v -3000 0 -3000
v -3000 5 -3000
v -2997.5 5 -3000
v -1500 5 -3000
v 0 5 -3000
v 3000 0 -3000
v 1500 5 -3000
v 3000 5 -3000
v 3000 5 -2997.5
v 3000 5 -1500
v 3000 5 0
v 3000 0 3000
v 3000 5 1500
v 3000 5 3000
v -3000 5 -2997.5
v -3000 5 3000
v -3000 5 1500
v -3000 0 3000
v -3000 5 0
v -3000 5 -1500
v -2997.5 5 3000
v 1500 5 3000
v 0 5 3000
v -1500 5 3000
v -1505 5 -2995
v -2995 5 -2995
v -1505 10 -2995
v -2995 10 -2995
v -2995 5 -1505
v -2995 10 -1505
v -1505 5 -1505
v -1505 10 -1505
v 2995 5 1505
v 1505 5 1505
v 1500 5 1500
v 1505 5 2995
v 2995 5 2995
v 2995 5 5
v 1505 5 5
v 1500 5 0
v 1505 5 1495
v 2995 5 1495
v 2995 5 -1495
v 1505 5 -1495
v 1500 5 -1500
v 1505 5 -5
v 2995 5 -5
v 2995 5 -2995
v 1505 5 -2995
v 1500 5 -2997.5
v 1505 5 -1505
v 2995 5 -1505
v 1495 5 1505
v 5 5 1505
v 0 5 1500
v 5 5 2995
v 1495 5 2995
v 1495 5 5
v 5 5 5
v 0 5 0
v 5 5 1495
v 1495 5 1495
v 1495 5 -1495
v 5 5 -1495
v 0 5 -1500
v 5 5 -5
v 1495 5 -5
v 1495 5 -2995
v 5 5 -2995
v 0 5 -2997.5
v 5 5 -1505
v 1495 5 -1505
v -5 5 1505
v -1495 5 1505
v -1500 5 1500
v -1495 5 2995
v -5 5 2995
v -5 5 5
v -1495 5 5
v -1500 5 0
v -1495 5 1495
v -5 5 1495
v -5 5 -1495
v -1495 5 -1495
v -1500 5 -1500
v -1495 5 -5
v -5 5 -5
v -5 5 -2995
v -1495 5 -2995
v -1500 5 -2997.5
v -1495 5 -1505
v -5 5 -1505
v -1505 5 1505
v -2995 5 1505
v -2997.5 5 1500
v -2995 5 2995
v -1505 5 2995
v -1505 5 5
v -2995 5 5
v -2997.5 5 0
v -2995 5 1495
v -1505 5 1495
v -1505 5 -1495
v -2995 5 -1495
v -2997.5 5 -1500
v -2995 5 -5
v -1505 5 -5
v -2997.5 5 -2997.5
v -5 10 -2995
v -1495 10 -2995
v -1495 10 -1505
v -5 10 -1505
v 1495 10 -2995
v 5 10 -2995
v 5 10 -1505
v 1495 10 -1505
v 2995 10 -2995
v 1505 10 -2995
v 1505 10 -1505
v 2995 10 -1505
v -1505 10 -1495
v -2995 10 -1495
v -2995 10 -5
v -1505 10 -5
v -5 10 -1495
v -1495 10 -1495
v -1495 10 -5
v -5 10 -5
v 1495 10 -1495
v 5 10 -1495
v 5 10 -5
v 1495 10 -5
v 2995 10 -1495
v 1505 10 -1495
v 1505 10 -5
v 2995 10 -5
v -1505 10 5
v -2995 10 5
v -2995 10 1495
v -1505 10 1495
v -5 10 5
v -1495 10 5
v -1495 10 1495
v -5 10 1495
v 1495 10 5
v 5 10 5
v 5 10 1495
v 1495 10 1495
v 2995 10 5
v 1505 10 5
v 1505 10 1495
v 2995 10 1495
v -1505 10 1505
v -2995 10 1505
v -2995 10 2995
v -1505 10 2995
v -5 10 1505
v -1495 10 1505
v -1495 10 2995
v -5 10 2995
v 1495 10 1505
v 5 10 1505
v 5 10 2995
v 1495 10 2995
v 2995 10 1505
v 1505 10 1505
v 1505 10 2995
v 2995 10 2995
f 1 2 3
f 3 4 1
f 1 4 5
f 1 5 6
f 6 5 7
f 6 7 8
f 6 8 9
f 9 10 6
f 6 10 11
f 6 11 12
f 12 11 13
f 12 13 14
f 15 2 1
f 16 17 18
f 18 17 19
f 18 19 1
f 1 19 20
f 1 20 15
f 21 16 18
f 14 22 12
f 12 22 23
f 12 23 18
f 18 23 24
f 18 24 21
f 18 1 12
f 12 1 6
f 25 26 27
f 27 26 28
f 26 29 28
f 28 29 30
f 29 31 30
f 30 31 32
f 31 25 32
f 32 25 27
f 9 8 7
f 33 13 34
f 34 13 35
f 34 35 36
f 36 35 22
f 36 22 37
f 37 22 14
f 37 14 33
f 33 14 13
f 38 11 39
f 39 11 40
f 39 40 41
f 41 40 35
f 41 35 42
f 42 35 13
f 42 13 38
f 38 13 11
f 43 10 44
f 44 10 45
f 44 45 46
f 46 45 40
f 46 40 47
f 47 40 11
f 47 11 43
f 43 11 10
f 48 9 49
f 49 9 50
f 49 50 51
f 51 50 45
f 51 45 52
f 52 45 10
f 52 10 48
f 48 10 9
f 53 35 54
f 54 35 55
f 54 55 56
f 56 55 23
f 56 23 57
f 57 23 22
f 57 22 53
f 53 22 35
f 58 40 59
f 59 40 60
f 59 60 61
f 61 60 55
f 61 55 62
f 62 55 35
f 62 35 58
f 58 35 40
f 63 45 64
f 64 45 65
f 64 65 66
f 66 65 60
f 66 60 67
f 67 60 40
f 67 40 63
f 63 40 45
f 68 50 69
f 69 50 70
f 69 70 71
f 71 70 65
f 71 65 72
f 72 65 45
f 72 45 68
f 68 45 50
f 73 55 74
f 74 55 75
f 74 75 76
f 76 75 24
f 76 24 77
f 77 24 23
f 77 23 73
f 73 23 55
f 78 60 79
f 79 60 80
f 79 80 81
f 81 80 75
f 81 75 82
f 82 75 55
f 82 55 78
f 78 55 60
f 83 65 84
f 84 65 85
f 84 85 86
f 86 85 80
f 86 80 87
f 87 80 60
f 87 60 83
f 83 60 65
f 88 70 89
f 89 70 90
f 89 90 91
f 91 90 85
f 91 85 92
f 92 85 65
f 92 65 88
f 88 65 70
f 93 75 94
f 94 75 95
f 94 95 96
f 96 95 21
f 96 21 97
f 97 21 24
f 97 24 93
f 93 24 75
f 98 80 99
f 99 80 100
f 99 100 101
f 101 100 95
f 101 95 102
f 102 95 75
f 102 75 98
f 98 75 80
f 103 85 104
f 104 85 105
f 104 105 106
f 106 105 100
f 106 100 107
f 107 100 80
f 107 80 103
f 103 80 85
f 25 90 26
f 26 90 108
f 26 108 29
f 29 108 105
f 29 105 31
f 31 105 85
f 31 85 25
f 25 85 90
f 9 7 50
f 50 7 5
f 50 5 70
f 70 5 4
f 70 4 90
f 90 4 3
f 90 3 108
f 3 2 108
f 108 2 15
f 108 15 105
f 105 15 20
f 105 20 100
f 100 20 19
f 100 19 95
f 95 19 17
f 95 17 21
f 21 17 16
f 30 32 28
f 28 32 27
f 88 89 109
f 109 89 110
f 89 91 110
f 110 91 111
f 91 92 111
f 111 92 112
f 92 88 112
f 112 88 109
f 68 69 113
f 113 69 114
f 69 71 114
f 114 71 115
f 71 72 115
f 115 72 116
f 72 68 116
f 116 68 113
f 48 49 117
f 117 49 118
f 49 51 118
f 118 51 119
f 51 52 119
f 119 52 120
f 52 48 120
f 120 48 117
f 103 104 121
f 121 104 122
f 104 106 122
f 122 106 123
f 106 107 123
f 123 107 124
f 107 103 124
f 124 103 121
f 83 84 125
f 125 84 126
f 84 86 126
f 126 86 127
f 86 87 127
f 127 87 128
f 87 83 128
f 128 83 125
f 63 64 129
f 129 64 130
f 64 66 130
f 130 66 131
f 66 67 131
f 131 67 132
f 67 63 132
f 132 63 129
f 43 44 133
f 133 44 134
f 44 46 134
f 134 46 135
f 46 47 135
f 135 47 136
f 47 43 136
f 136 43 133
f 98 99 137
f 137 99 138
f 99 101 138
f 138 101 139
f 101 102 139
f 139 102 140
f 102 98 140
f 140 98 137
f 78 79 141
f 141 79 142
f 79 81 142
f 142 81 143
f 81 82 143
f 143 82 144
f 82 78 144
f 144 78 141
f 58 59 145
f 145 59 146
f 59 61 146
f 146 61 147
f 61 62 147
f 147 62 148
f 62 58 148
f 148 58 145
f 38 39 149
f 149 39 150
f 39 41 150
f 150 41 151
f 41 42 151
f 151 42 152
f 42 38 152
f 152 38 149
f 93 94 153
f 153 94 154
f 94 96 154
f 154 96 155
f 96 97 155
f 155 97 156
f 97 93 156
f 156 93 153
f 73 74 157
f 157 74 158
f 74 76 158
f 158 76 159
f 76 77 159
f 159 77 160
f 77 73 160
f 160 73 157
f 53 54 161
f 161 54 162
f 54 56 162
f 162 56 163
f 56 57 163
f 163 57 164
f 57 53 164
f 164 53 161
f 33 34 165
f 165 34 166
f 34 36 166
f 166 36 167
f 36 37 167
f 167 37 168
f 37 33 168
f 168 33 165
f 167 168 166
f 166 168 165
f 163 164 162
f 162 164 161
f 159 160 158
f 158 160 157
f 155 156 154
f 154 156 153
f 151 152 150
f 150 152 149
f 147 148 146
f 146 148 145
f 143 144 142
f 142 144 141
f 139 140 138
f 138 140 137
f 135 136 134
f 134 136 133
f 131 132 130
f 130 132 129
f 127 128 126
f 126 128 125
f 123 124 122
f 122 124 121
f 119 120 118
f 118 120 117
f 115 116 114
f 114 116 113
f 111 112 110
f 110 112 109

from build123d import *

# Parameters (mm, degrees)
SKETCH1_W            = 6000
SKETCH1_H            = 6000
BOSS_EXTRUDE1_DEPTH  = 10
SKETCH2_W            = 1500
SKETCH2_H            = 1500
SKETCH2_W_2          = 1490
SKETCH2_H_2          = 1490
CUT_EXTRUDE1_DEPTH   = 5
LPATTERN1_COUNT      = 4
LPATTERN1_PITCH      = 1500
LPATTERN1_COUNT_DIR2 = 4
LPATTERN1_PITCH_DIR2 = 1500


with BuildPart() as part:
    # Sketch1 → Boss-Extrude1 (new body)
    with BuildSketch(Plane(origin=(0, 0, 0), x_dir=(1, 0, 0), z_dir=(0, 1, 0))):
        Rectangle(SKETCH1_W, SKETCH1_H)
    extrude(amount=BOSS_EXTRUDE1_DEPTH)

    # Sketch2 → Cut-Extrude1 (cut)
    with BuildSketch(Plane(origin=(0, 10, 0), x_dir=(1, 0, 0), z_dir=(0, 1, 0))):
        with Locations((-2250, 2250)):
            Rectangle(SKETCH2_W, SKETCH2_H)
        with Locations((-2250, 2250)):
            Rectangle(SKETCH2_W_2, SKETCH2_H_2, mode=Mode.SUBTRACT)
    cut_extrude1 = extrude(amount=-CUT_EXTRUDE1_DEPTH, mode=Mode.SUBTRACT)

    # LPattern1: Cut-Extrude1 4 × 4
    with Locations(*[(j * LPATTERN1_PITCH_DIR2, 0, i * LPATTERN1_PITCH) for i in range(LPATTERN1_COUNT) for j in range(LPATTERN1_COUNT_DIR2) if (i, j) != (0, 0)]):
        add(cut_extrude1, mode=Mode.SUBTRACT)


solid = part.part
